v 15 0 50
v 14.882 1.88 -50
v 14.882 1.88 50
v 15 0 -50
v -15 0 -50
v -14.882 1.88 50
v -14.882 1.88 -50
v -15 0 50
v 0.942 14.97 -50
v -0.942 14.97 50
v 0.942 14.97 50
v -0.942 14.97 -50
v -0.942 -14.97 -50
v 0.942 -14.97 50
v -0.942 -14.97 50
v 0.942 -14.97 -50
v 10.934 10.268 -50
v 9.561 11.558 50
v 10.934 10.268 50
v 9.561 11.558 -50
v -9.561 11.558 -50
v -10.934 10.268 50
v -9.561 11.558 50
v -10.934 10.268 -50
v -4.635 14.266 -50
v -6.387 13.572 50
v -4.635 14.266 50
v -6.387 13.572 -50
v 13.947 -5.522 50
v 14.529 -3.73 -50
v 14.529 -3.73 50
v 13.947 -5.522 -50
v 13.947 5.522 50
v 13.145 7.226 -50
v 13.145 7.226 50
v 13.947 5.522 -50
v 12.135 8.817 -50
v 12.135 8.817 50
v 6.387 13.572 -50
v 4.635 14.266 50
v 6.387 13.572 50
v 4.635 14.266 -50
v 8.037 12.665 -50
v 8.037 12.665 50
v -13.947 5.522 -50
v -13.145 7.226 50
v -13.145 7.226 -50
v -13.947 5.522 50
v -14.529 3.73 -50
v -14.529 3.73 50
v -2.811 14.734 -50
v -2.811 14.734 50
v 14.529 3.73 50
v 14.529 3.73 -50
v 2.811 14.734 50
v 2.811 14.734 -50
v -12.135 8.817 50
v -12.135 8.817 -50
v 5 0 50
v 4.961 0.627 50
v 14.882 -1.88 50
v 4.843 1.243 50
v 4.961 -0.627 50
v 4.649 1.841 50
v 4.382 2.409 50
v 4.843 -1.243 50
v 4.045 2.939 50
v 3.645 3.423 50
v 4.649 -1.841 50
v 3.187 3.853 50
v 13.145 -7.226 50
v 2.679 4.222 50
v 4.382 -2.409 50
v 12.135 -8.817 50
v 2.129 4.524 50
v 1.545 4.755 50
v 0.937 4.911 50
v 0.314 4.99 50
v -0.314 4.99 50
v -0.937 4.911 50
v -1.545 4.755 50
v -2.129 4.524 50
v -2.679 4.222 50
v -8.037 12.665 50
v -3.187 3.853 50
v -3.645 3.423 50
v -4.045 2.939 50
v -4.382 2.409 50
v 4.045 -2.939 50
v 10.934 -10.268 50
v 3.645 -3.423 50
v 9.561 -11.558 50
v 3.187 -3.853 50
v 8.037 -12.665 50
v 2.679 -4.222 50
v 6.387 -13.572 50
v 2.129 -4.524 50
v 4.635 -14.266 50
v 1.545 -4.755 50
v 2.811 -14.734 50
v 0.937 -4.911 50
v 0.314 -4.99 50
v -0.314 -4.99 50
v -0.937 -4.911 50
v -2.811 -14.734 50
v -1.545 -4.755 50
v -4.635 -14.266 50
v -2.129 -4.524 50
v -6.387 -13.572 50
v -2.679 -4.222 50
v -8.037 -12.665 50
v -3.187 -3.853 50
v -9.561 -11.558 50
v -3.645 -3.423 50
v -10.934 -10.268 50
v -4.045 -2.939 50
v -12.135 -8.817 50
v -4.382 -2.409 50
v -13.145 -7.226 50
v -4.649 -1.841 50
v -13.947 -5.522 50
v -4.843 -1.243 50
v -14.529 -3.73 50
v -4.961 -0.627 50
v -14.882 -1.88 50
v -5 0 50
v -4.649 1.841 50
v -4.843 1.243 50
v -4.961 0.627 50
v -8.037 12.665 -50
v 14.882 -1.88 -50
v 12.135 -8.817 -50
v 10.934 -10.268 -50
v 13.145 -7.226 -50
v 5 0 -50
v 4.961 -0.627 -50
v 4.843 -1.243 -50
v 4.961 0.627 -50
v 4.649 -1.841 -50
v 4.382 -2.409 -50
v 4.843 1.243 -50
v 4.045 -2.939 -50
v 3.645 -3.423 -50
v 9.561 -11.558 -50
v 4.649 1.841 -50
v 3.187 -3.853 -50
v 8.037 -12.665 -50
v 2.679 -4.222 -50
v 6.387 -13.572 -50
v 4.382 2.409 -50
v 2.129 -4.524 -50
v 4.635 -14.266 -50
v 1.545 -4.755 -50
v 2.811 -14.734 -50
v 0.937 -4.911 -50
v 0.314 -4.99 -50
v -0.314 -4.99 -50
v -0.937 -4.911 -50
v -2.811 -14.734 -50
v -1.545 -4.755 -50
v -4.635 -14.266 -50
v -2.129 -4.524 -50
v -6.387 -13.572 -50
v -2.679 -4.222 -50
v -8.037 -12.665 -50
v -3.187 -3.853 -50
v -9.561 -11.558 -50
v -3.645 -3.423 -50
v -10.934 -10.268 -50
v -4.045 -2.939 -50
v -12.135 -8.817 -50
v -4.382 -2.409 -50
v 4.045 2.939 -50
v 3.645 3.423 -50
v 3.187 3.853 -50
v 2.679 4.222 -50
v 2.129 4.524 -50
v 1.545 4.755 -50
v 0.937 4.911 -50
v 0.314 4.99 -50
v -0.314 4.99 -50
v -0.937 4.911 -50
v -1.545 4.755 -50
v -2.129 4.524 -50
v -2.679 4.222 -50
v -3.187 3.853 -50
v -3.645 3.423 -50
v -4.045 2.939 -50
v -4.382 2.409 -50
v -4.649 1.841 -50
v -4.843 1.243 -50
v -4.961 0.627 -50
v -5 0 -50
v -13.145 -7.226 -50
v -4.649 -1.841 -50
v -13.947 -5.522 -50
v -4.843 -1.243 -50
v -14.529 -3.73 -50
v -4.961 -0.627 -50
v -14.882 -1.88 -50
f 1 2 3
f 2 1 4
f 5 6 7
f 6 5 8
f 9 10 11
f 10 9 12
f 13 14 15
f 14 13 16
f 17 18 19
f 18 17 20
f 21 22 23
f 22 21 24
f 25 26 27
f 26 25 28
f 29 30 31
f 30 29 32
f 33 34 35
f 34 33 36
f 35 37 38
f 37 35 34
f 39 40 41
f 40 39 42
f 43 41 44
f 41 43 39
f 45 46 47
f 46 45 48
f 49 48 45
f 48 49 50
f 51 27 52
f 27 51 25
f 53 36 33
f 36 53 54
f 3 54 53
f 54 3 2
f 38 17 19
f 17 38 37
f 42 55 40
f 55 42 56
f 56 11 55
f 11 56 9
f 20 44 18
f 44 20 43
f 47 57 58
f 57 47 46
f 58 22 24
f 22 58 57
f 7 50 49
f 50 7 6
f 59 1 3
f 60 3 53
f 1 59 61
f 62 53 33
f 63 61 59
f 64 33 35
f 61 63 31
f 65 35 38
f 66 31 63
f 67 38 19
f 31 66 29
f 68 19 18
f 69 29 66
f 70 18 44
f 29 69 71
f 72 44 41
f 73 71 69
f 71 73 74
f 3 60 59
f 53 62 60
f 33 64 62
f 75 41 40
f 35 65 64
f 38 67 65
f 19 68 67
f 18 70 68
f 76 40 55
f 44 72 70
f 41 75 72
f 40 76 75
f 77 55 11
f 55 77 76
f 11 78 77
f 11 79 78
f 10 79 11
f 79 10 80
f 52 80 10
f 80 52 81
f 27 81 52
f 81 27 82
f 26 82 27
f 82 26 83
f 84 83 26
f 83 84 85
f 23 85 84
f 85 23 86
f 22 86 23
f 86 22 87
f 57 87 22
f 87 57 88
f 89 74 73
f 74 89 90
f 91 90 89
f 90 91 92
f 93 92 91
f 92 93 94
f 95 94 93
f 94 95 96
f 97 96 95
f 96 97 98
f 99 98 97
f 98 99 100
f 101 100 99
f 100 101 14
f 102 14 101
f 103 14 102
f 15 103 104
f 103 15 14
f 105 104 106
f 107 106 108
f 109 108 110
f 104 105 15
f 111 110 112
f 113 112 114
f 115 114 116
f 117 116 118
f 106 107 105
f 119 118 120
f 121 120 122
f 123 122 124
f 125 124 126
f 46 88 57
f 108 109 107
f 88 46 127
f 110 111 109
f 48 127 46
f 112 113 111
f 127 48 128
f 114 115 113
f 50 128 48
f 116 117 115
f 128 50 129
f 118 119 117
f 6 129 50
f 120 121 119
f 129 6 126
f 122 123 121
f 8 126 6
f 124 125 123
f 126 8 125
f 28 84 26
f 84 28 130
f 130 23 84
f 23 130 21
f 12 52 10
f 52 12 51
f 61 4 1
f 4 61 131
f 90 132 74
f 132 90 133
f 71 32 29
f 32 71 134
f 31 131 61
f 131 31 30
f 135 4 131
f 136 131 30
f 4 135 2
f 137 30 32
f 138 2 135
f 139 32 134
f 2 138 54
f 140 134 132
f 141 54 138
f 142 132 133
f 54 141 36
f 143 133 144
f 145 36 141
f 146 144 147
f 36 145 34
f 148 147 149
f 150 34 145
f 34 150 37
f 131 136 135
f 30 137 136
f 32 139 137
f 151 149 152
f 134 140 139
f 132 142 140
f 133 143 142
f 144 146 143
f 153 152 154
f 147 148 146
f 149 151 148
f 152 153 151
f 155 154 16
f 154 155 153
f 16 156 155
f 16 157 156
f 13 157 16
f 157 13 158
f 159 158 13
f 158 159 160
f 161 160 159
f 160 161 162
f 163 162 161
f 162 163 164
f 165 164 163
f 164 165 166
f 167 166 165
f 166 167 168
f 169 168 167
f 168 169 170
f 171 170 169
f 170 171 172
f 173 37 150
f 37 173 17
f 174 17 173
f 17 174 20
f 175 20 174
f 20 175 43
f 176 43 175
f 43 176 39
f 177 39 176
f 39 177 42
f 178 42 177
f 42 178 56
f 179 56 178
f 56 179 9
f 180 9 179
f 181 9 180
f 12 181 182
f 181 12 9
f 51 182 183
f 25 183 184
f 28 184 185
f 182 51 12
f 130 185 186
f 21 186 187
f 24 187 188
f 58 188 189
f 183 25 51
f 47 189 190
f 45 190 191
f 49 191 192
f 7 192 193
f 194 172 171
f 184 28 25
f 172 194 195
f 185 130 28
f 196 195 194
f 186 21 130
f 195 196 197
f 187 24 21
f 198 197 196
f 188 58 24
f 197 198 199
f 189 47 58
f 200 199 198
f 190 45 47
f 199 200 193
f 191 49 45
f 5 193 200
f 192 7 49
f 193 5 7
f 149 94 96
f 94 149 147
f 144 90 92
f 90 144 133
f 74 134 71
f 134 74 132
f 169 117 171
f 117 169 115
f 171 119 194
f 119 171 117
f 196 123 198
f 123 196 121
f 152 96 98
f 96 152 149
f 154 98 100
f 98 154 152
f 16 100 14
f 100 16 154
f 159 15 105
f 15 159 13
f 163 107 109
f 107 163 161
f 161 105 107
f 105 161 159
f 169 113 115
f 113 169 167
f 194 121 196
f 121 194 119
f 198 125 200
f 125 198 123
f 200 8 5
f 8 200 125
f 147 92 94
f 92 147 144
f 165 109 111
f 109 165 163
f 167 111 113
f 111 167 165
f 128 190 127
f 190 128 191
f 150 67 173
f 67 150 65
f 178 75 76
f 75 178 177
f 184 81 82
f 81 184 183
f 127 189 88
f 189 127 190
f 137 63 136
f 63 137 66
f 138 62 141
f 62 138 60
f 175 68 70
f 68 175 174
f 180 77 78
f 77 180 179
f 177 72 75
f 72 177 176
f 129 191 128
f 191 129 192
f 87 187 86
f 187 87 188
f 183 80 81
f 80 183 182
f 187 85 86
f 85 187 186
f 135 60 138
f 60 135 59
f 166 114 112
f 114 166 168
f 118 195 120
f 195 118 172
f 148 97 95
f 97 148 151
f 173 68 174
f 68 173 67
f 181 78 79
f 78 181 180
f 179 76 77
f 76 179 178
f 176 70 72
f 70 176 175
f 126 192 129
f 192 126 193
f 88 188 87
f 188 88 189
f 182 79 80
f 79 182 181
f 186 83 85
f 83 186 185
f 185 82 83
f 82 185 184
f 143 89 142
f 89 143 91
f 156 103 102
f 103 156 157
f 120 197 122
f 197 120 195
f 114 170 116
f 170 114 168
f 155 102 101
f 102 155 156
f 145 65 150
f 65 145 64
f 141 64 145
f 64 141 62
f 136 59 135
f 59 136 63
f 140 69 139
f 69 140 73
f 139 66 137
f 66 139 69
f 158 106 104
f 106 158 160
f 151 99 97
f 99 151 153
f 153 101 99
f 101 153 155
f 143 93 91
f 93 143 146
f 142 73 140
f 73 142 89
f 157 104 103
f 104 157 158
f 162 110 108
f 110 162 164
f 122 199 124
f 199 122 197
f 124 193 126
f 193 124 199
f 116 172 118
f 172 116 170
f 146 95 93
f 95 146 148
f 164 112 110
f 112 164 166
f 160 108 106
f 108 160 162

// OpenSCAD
$fn = 50;


difference() {
	union() {
		translate(v = [0, 0, -50.0000000000]) {
			cylinder(h = 100, r = 15.0000000000);
		}
	}
	union() {
		translate(v = [0, 0, -100.0000000000]) {
			cylinder(h = 200, r = 5.0000000000);
		}
	}
}
